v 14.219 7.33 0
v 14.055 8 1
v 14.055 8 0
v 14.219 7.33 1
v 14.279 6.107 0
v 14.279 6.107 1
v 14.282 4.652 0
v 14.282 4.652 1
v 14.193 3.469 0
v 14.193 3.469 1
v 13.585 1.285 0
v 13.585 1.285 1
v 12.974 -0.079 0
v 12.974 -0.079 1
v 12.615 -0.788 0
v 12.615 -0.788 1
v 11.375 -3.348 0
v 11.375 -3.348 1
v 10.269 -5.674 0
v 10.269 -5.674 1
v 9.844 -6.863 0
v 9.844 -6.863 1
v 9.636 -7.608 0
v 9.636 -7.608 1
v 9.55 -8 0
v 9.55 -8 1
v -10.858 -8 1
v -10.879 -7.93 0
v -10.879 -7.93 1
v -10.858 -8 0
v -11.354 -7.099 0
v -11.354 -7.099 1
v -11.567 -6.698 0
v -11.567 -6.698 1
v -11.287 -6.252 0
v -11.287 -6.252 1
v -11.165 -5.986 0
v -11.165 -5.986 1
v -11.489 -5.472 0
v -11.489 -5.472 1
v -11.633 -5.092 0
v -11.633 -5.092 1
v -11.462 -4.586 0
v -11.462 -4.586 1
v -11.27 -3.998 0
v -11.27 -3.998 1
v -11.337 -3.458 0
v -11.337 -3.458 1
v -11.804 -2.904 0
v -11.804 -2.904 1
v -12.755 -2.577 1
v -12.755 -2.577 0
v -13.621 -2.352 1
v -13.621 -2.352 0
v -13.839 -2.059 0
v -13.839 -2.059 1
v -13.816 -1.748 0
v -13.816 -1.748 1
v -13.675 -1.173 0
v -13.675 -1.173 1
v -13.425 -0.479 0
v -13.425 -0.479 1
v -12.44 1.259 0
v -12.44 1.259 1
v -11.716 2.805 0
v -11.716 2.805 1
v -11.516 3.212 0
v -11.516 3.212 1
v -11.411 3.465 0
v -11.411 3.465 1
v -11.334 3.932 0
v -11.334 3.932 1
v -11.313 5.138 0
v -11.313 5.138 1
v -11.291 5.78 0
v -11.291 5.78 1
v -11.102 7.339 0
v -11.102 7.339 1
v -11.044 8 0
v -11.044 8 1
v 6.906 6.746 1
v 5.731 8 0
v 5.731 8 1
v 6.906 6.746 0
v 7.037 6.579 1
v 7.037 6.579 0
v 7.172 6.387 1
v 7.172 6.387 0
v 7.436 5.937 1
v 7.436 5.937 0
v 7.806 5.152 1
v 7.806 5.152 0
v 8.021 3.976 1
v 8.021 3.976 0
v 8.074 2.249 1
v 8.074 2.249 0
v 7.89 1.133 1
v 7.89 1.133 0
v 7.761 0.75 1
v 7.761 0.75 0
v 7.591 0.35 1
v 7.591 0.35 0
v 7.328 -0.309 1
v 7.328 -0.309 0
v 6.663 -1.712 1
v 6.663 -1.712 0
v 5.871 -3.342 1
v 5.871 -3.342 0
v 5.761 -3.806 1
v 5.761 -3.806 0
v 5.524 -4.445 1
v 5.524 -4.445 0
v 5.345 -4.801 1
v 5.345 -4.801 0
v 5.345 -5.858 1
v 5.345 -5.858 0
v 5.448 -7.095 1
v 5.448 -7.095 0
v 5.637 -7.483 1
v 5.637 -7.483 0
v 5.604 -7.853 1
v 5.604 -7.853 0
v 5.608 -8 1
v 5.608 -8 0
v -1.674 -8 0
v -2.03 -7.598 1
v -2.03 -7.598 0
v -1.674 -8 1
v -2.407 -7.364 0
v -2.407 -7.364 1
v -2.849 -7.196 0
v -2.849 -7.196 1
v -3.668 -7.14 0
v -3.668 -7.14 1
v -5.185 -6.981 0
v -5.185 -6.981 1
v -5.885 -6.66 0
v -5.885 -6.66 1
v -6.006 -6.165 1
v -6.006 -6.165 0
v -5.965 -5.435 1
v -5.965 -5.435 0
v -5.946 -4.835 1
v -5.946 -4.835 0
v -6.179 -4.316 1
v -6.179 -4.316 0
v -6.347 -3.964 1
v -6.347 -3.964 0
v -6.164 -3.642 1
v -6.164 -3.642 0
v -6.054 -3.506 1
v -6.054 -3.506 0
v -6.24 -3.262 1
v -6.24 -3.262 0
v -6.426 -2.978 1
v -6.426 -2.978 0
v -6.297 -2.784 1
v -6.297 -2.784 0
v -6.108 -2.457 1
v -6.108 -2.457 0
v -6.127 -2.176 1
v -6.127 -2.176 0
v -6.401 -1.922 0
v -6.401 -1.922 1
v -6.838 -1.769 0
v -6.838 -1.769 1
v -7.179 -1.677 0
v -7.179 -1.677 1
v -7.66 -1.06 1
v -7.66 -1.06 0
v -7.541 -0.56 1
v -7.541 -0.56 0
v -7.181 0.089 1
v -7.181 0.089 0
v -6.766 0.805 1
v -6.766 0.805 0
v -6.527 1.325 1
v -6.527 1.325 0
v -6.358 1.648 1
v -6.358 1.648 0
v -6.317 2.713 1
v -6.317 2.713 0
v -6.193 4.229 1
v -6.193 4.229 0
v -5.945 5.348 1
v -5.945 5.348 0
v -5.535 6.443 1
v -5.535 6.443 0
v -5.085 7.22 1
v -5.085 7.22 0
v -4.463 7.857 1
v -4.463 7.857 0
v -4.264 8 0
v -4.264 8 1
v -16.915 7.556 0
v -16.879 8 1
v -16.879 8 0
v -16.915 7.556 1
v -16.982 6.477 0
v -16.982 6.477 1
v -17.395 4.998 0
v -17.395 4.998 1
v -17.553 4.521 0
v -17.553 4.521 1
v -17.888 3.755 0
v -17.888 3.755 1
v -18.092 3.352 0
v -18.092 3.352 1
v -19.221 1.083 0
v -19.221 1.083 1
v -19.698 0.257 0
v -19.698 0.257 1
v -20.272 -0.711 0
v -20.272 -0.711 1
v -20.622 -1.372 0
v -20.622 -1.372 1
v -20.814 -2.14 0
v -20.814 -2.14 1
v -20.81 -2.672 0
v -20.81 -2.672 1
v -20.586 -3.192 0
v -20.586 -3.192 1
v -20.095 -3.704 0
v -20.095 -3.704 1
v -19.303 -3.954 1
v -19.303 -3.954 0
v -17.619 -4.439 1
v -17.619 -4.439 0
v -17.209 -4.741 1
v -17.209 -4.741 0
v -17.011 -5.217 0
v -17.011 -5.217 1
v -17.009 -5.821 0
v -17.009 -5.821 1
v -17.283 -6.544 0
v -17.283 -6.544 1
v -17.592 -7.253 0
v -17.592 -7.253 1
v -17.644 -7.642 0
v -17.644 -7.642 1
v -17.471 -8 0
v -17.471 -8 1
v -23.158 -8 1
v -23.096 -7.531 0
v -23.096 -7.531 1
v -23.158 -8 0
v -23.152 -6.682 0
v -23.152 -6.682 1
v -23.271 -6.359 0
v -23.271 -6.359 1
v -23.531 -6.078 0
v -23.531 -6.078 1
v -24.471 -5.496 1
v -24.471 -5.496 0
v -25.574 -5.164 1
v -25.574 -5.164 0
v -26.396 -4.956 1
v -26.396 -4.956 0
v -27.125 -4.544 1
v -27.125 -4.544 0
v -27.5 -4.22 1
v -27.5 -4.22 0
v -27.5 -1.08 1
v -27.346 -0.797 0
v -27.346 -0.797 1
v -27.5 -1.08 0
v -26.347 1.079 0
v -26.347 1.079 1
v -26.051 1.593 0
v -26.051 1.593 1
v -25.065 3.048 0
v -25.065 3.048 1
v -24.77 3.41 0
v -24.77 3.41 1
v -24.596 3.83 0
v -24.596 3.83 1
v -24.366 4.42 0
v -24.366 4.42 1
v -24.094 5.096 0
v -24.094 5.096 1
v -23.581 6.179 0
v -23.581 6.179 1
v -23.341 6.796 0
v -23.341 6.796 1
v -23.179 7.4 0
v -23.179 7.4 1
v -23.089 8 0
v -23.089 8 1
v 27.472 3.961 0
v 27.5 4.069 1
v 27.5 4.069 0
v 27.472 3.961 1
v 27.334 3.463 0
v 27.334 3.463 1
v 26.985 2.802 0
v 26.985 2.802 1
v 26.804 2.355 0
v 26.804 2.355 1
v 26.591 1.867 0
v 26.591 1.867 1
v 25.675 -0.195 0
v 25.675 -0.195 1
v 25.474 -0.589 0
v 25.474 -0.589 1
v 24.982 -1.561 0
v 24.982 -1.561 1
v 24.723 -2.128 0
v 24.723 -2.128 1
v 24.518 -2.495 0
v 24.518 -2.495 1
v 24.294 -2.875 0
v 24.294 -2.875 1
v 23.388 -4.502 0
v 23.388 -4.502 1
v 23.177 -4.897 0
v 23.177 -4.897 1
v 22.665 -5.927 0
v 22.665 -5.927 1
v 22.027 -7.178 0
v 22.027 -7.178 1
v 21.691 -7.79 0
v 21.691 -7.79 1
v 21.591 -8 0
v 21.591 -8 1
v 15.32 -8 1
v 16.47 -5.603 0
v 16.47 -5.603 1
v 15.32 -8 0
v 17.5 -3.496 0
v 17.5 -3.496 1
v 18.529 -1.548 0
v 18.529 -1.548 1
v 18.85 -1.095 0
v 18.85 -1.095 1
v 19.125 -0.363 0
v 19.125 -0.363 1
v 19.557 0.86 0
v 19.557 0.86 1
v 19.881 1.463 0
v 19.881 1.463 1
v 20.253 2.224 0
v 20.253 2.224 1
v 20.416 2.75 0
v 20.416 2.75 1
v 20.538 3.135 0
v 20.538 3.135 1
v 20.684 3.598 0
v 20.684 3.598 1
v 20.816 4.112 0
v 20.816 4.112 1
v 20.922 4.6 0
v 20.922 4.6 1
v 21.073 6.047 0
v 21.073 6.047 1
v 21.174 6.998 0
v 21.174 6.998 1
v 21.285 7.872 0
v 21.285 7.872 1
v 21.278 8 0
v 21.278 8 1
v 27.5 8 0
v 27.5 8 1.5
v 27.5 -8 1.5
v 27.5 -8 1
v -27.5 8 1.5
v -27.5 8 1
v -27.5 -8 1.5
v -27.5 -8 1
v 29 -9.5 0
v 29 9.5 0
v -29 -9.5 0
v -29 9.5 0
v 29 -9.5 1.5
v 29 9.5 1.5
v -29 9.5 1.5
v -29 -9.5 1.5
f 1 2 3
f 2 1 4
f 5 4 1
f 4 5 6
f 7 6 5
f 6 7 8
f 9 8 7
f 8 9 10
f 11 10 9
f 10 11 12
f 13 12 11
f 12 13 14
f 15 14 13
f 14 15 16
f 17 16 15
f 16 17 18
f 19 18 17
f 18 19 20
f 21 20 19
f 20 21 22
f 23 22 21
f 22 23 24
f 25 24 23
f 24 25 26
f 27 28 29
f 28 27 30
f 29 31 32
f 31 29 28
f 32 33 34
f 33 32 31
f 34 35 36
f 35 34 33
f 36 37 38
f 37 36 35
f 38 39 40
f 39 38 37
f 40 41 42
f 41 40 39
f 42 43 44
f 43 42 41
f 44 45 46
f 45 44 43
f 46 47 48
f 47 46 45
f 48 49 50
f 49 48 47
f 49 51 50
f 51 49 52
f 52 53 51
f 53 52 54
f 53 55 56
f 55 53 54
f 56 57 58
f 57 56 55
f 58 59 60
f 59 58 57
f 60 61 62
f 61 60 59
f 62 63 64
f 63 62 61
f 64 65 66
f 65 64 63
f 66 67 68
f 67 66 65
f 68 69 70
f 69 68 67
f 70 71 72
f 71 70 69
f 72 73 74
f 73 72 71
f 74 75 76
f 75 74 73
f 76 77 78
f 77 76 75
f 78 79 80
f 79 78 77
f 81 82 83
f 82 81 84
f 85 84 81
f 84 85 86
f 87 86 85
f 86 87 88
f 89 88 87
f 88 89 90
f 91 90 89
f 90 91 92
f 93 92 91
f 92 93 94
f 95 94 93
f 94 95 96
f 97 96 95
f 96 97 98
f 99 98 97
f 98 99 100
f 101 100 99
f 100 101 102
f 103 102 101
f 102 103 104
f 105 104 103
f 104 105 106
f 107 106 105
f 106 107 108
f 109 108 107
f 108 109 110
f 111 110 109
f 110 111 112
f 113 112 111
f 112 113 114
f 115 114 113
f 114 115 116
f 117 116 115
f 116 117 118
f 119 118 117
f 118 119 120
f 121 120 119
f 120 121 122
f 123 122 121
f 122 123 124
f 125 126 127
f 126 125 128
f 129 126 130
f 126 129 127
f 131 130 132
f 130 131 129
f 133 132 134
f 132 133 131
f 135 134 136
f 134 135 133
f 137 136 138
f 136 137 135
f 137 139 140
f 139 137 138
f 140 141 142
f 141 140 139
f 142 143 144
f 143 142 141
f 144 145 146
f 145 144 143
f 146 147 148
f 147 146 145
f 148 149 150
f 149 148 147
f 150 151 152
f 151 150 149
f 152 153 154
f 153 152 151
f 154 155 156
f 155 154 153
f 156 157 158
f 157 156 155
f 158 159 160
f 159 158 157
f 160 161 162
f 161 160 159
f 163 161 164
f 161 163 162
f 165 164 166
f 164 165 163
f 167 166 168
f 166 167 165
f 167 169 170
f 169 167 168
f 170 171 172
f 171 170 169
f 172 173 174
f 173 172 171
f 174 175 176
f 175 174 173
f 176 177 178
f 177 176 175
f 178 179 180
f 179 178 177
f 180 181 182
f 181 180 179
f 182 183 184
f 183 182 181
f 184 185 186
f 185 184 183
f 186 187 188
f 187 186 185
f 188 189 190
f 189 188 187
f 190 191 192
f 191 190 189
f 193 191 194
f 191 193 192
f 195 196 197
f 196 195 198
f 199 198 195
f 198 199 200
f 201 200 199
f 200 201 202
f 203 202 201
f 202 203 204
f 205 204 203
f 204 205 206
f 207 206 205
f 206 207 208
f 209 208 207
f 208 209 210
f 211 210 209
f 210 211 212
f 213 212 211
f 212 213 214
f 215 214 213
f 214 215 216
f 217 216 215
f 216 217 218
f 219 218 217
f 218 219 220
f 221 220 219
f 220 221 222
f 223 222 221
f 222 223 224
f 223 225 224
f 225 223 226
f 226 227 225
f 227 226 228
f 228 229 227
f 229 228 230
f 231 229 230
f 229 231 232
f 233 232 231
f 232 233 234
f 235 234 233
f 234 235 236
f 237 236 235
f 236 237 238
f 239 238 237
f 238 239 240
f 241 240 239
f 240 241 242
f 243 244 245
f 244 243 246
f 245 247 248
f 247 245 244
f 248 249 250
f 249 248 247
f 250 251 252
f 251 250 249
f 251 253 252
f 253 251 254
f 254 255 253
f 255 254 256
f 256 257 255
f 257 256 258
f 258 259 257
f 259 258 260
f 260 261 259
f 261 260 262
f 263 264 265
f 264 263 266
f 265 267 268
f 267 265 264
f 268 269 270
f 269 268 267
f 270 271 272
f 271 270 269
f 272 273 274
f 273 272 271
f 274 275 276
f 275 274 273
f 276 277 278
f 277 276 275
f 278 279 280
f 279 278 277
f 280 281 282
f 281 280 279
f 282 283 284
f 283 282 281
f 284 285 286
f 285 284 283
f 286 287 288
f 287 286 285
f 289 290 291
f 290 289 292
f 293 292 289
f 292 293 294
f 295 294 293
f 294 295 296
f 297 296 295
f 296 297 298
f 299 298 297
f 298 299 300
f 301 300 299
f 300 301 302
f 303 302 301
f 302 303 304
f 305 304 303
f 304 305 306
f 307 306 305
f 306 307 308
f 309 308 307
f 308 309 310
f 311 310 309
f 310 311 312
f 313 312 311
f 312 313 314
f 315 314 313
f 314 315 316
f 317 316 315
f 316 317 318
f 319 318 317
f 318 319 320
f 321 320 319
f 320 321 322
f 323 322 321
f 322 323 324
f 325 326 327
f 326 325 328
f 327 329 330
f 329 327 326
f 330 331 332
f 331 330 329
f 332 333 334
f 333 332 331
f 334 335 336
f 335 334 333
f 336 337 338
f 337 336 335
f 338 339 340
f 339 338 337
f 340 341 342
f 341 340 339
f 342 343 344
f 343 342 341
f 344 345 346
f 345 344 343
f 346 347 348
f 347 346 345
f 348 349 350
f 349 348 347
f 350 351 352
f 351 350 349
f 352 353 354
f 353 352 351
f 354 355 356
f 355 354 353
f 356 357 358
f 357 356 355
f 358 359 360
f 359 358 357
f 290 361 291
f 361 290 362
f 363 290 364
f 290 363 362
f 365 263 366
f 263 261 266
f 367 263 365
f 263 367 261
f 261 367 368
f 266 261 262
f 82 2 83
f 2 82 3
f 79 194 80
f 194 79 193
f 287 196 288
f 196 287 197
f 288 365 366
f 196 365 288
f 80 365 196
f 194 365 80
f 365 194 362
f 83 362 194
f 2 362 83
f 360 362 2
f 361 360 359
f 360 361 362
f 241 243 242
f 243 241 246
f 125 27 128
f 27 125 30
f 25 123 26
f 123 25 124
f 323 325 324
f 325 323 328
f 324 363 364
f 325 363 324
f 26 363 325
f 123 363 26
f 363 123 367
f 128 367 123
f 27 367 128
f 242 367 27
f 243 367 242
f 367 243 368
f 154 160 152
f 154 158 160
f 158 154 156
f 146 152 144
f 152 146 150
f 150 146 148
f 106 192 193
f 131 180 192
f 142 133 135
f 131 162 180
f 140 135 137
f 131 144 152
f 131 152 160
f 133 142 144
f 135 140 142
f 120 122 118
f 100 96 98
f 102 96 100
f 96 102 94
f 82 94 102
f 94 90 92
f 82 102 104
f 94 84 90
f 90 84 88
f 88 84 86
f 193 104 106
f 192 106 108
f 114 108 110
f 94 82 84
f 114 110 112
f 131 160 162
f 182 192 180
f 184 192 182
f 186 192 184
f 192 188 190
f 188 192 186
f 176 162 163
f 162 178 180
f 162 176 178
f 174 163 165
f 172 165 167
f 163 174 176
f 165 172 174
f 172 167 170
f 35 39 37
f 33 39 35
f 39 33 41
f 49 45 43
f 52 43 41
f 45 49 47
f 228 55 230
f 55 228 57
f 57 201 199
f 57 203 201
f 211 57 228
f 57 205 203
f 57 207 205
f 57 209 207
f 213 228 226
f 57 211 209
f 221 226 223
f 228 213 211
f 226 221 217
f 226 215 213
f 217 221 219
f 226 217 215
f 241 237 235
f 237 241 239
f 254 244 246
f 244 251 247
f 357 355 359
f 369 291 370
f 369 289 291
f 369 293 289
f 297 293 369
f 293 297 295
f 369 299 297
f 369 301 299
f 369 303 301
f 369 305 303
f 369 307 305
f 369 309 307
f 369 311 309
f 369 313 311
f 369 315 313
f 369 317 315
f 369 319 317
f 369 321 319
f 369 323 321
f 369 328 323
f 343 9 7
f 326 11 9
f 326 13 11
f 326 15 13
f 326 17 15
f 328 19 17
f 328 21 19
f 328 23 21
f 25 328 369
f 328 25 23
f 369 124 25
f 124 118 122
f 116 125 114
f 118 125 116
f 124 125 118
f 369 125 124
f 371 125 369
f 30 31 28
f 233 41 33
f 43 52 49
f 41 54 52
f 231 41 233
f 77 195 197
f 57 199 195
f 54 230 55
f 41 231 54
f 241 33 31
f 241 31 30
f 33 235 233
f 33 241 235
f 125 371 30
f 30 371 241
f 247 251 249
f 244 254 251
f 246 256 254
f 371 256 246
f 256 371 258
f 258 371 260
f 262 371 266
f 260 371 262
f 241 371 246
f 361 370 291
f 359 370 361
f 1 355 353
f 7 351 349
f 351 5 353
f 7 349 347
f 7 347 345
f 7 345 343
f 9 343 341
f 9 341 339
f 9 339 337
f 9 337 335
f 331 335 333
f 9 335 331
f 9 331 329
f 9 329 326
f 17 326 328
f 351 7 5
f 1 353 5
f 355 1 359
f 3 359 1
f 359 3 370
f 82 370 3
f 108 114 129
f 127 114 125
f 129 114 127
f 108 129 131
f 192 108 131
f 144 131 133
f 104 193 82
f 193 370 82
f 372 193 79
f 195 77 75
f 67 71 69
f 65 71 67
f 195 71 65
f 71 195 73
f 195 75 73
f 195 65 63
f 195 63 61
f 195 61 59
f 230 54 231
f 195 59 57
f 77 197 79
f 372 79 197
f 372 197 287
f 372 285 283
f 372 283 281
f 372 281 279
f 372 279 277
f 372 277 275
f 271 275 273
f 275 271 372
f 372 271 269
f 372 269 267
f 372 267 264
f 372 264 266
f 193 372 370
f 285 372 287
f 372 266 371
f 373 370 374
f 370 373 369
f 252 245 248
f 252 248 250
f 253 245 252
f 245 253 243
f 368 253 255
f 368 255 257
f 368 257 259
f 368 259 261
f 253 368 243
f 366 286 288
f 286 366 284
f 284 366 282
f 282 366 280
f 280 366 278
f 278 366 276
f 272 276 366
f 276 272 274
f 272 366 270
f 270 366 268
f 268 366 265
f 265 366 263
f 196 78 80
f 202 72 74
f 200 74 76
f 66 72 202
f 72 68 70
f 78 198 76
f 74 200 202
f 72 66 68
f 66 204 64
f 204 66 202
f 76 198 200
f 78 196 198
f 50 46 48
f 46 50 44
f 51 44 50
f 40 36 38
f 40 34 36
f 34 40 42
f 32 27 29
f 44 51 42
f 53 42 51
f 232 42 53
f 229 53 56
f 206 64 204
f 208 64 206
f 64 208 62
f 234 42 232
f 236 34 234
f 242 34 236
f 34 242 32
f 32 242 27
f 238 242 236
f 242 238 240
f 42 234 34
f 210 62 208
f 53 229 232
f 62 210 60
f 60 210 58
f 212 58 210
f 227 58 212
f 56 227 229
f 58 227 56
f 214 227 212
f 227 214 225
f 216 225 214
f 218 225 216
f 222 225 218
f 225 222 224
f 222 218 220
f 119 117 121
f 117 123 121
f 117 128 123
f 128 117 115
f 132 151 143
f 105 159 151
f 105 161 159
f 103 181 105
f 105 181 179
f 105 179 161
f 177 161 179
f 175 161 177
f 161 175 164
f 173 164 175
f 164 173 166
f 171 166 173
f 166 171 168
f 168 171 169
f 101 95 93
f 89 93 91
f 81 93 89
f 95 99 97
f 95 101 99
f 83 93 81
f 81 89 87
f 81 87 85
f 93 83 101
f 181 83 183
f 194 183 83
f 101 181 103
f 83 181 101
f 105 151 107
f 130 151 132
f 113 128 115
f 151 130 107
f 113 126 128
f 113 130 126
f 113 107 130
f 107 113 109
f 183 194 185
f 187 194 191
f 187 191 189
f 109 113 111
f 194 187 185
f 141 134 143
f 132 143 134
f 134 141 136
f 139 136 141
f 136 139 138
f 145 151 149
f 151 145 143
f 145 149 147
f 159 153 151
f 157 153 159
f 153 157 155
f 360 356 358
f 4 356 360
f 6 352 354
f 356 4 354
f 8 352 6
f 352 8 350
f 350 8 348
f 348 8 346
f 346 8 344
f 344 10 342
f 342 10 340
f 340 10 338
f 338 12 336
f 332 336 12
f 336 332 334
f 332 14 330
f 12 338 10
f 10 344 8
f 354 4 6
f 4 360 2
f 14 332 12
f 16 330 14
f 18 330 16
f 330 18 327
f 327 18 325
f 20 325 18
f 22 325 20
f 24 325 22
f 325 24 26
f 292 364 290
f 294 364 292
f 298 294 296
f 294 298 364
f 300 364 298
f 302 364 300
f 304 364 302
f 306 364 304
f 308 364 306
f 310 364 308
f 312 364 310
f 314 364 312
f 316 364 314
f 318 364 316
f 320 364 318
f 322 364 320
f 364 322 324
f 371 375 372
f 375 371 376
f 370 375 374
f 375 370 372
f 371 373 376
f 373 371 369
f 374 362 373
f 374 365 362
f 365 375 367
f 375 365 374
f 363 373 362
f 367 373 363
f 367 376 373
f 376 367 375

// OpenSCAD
// file: variables.scad
confetti_w = 55;
confetti_h = 16;

margin = 3;

plate_w = confetti_w + margin;
plate_h = confetti_h + margin;

thickness = 2;
// main file
$center = false;

include <variables.scad>
include <face.scad>;
include <face_2.scad>;

rim_height = thickness;

module face(h) {
     difference() {
          translate([0, 0, h/2]) {
               cube([confetti_w, confetti_h, h], center=true);
          }
          translate([0, 0, -1]) {
               scale([1.5, 1.5, 1]) {
                    face_wave(h+5);
               }
          }
     }
}

module face_plate_negative(h) {
     difference() {
          translate([0, 0, h/2]) {
               cube([confetti_w, confetti_h, h], center=true);
          }
          translate([0, 0, -1]) {
               face(h*2);
          }
     }
}

module face_plate_possitive(h) {
     difference() {
          translate([0, 0, h/2]) {
               cube([plate_w, plate_h, h], center=true);
          }
          translate([0, 0, 0]) {
               face_plate_negative(h*3);
          }
     }
}

module rim(h) {
     difference() {
          translate([0, 0, h/2]) {
               cube([plate_w, plate_h, h], center=true);
          }
          cube([confetti_w, confetti_h, h*3], center=true);
     }
}

union() {
     rim(rim_height - 0.5);
     face_plate_possitive(thickness / 2);
}
